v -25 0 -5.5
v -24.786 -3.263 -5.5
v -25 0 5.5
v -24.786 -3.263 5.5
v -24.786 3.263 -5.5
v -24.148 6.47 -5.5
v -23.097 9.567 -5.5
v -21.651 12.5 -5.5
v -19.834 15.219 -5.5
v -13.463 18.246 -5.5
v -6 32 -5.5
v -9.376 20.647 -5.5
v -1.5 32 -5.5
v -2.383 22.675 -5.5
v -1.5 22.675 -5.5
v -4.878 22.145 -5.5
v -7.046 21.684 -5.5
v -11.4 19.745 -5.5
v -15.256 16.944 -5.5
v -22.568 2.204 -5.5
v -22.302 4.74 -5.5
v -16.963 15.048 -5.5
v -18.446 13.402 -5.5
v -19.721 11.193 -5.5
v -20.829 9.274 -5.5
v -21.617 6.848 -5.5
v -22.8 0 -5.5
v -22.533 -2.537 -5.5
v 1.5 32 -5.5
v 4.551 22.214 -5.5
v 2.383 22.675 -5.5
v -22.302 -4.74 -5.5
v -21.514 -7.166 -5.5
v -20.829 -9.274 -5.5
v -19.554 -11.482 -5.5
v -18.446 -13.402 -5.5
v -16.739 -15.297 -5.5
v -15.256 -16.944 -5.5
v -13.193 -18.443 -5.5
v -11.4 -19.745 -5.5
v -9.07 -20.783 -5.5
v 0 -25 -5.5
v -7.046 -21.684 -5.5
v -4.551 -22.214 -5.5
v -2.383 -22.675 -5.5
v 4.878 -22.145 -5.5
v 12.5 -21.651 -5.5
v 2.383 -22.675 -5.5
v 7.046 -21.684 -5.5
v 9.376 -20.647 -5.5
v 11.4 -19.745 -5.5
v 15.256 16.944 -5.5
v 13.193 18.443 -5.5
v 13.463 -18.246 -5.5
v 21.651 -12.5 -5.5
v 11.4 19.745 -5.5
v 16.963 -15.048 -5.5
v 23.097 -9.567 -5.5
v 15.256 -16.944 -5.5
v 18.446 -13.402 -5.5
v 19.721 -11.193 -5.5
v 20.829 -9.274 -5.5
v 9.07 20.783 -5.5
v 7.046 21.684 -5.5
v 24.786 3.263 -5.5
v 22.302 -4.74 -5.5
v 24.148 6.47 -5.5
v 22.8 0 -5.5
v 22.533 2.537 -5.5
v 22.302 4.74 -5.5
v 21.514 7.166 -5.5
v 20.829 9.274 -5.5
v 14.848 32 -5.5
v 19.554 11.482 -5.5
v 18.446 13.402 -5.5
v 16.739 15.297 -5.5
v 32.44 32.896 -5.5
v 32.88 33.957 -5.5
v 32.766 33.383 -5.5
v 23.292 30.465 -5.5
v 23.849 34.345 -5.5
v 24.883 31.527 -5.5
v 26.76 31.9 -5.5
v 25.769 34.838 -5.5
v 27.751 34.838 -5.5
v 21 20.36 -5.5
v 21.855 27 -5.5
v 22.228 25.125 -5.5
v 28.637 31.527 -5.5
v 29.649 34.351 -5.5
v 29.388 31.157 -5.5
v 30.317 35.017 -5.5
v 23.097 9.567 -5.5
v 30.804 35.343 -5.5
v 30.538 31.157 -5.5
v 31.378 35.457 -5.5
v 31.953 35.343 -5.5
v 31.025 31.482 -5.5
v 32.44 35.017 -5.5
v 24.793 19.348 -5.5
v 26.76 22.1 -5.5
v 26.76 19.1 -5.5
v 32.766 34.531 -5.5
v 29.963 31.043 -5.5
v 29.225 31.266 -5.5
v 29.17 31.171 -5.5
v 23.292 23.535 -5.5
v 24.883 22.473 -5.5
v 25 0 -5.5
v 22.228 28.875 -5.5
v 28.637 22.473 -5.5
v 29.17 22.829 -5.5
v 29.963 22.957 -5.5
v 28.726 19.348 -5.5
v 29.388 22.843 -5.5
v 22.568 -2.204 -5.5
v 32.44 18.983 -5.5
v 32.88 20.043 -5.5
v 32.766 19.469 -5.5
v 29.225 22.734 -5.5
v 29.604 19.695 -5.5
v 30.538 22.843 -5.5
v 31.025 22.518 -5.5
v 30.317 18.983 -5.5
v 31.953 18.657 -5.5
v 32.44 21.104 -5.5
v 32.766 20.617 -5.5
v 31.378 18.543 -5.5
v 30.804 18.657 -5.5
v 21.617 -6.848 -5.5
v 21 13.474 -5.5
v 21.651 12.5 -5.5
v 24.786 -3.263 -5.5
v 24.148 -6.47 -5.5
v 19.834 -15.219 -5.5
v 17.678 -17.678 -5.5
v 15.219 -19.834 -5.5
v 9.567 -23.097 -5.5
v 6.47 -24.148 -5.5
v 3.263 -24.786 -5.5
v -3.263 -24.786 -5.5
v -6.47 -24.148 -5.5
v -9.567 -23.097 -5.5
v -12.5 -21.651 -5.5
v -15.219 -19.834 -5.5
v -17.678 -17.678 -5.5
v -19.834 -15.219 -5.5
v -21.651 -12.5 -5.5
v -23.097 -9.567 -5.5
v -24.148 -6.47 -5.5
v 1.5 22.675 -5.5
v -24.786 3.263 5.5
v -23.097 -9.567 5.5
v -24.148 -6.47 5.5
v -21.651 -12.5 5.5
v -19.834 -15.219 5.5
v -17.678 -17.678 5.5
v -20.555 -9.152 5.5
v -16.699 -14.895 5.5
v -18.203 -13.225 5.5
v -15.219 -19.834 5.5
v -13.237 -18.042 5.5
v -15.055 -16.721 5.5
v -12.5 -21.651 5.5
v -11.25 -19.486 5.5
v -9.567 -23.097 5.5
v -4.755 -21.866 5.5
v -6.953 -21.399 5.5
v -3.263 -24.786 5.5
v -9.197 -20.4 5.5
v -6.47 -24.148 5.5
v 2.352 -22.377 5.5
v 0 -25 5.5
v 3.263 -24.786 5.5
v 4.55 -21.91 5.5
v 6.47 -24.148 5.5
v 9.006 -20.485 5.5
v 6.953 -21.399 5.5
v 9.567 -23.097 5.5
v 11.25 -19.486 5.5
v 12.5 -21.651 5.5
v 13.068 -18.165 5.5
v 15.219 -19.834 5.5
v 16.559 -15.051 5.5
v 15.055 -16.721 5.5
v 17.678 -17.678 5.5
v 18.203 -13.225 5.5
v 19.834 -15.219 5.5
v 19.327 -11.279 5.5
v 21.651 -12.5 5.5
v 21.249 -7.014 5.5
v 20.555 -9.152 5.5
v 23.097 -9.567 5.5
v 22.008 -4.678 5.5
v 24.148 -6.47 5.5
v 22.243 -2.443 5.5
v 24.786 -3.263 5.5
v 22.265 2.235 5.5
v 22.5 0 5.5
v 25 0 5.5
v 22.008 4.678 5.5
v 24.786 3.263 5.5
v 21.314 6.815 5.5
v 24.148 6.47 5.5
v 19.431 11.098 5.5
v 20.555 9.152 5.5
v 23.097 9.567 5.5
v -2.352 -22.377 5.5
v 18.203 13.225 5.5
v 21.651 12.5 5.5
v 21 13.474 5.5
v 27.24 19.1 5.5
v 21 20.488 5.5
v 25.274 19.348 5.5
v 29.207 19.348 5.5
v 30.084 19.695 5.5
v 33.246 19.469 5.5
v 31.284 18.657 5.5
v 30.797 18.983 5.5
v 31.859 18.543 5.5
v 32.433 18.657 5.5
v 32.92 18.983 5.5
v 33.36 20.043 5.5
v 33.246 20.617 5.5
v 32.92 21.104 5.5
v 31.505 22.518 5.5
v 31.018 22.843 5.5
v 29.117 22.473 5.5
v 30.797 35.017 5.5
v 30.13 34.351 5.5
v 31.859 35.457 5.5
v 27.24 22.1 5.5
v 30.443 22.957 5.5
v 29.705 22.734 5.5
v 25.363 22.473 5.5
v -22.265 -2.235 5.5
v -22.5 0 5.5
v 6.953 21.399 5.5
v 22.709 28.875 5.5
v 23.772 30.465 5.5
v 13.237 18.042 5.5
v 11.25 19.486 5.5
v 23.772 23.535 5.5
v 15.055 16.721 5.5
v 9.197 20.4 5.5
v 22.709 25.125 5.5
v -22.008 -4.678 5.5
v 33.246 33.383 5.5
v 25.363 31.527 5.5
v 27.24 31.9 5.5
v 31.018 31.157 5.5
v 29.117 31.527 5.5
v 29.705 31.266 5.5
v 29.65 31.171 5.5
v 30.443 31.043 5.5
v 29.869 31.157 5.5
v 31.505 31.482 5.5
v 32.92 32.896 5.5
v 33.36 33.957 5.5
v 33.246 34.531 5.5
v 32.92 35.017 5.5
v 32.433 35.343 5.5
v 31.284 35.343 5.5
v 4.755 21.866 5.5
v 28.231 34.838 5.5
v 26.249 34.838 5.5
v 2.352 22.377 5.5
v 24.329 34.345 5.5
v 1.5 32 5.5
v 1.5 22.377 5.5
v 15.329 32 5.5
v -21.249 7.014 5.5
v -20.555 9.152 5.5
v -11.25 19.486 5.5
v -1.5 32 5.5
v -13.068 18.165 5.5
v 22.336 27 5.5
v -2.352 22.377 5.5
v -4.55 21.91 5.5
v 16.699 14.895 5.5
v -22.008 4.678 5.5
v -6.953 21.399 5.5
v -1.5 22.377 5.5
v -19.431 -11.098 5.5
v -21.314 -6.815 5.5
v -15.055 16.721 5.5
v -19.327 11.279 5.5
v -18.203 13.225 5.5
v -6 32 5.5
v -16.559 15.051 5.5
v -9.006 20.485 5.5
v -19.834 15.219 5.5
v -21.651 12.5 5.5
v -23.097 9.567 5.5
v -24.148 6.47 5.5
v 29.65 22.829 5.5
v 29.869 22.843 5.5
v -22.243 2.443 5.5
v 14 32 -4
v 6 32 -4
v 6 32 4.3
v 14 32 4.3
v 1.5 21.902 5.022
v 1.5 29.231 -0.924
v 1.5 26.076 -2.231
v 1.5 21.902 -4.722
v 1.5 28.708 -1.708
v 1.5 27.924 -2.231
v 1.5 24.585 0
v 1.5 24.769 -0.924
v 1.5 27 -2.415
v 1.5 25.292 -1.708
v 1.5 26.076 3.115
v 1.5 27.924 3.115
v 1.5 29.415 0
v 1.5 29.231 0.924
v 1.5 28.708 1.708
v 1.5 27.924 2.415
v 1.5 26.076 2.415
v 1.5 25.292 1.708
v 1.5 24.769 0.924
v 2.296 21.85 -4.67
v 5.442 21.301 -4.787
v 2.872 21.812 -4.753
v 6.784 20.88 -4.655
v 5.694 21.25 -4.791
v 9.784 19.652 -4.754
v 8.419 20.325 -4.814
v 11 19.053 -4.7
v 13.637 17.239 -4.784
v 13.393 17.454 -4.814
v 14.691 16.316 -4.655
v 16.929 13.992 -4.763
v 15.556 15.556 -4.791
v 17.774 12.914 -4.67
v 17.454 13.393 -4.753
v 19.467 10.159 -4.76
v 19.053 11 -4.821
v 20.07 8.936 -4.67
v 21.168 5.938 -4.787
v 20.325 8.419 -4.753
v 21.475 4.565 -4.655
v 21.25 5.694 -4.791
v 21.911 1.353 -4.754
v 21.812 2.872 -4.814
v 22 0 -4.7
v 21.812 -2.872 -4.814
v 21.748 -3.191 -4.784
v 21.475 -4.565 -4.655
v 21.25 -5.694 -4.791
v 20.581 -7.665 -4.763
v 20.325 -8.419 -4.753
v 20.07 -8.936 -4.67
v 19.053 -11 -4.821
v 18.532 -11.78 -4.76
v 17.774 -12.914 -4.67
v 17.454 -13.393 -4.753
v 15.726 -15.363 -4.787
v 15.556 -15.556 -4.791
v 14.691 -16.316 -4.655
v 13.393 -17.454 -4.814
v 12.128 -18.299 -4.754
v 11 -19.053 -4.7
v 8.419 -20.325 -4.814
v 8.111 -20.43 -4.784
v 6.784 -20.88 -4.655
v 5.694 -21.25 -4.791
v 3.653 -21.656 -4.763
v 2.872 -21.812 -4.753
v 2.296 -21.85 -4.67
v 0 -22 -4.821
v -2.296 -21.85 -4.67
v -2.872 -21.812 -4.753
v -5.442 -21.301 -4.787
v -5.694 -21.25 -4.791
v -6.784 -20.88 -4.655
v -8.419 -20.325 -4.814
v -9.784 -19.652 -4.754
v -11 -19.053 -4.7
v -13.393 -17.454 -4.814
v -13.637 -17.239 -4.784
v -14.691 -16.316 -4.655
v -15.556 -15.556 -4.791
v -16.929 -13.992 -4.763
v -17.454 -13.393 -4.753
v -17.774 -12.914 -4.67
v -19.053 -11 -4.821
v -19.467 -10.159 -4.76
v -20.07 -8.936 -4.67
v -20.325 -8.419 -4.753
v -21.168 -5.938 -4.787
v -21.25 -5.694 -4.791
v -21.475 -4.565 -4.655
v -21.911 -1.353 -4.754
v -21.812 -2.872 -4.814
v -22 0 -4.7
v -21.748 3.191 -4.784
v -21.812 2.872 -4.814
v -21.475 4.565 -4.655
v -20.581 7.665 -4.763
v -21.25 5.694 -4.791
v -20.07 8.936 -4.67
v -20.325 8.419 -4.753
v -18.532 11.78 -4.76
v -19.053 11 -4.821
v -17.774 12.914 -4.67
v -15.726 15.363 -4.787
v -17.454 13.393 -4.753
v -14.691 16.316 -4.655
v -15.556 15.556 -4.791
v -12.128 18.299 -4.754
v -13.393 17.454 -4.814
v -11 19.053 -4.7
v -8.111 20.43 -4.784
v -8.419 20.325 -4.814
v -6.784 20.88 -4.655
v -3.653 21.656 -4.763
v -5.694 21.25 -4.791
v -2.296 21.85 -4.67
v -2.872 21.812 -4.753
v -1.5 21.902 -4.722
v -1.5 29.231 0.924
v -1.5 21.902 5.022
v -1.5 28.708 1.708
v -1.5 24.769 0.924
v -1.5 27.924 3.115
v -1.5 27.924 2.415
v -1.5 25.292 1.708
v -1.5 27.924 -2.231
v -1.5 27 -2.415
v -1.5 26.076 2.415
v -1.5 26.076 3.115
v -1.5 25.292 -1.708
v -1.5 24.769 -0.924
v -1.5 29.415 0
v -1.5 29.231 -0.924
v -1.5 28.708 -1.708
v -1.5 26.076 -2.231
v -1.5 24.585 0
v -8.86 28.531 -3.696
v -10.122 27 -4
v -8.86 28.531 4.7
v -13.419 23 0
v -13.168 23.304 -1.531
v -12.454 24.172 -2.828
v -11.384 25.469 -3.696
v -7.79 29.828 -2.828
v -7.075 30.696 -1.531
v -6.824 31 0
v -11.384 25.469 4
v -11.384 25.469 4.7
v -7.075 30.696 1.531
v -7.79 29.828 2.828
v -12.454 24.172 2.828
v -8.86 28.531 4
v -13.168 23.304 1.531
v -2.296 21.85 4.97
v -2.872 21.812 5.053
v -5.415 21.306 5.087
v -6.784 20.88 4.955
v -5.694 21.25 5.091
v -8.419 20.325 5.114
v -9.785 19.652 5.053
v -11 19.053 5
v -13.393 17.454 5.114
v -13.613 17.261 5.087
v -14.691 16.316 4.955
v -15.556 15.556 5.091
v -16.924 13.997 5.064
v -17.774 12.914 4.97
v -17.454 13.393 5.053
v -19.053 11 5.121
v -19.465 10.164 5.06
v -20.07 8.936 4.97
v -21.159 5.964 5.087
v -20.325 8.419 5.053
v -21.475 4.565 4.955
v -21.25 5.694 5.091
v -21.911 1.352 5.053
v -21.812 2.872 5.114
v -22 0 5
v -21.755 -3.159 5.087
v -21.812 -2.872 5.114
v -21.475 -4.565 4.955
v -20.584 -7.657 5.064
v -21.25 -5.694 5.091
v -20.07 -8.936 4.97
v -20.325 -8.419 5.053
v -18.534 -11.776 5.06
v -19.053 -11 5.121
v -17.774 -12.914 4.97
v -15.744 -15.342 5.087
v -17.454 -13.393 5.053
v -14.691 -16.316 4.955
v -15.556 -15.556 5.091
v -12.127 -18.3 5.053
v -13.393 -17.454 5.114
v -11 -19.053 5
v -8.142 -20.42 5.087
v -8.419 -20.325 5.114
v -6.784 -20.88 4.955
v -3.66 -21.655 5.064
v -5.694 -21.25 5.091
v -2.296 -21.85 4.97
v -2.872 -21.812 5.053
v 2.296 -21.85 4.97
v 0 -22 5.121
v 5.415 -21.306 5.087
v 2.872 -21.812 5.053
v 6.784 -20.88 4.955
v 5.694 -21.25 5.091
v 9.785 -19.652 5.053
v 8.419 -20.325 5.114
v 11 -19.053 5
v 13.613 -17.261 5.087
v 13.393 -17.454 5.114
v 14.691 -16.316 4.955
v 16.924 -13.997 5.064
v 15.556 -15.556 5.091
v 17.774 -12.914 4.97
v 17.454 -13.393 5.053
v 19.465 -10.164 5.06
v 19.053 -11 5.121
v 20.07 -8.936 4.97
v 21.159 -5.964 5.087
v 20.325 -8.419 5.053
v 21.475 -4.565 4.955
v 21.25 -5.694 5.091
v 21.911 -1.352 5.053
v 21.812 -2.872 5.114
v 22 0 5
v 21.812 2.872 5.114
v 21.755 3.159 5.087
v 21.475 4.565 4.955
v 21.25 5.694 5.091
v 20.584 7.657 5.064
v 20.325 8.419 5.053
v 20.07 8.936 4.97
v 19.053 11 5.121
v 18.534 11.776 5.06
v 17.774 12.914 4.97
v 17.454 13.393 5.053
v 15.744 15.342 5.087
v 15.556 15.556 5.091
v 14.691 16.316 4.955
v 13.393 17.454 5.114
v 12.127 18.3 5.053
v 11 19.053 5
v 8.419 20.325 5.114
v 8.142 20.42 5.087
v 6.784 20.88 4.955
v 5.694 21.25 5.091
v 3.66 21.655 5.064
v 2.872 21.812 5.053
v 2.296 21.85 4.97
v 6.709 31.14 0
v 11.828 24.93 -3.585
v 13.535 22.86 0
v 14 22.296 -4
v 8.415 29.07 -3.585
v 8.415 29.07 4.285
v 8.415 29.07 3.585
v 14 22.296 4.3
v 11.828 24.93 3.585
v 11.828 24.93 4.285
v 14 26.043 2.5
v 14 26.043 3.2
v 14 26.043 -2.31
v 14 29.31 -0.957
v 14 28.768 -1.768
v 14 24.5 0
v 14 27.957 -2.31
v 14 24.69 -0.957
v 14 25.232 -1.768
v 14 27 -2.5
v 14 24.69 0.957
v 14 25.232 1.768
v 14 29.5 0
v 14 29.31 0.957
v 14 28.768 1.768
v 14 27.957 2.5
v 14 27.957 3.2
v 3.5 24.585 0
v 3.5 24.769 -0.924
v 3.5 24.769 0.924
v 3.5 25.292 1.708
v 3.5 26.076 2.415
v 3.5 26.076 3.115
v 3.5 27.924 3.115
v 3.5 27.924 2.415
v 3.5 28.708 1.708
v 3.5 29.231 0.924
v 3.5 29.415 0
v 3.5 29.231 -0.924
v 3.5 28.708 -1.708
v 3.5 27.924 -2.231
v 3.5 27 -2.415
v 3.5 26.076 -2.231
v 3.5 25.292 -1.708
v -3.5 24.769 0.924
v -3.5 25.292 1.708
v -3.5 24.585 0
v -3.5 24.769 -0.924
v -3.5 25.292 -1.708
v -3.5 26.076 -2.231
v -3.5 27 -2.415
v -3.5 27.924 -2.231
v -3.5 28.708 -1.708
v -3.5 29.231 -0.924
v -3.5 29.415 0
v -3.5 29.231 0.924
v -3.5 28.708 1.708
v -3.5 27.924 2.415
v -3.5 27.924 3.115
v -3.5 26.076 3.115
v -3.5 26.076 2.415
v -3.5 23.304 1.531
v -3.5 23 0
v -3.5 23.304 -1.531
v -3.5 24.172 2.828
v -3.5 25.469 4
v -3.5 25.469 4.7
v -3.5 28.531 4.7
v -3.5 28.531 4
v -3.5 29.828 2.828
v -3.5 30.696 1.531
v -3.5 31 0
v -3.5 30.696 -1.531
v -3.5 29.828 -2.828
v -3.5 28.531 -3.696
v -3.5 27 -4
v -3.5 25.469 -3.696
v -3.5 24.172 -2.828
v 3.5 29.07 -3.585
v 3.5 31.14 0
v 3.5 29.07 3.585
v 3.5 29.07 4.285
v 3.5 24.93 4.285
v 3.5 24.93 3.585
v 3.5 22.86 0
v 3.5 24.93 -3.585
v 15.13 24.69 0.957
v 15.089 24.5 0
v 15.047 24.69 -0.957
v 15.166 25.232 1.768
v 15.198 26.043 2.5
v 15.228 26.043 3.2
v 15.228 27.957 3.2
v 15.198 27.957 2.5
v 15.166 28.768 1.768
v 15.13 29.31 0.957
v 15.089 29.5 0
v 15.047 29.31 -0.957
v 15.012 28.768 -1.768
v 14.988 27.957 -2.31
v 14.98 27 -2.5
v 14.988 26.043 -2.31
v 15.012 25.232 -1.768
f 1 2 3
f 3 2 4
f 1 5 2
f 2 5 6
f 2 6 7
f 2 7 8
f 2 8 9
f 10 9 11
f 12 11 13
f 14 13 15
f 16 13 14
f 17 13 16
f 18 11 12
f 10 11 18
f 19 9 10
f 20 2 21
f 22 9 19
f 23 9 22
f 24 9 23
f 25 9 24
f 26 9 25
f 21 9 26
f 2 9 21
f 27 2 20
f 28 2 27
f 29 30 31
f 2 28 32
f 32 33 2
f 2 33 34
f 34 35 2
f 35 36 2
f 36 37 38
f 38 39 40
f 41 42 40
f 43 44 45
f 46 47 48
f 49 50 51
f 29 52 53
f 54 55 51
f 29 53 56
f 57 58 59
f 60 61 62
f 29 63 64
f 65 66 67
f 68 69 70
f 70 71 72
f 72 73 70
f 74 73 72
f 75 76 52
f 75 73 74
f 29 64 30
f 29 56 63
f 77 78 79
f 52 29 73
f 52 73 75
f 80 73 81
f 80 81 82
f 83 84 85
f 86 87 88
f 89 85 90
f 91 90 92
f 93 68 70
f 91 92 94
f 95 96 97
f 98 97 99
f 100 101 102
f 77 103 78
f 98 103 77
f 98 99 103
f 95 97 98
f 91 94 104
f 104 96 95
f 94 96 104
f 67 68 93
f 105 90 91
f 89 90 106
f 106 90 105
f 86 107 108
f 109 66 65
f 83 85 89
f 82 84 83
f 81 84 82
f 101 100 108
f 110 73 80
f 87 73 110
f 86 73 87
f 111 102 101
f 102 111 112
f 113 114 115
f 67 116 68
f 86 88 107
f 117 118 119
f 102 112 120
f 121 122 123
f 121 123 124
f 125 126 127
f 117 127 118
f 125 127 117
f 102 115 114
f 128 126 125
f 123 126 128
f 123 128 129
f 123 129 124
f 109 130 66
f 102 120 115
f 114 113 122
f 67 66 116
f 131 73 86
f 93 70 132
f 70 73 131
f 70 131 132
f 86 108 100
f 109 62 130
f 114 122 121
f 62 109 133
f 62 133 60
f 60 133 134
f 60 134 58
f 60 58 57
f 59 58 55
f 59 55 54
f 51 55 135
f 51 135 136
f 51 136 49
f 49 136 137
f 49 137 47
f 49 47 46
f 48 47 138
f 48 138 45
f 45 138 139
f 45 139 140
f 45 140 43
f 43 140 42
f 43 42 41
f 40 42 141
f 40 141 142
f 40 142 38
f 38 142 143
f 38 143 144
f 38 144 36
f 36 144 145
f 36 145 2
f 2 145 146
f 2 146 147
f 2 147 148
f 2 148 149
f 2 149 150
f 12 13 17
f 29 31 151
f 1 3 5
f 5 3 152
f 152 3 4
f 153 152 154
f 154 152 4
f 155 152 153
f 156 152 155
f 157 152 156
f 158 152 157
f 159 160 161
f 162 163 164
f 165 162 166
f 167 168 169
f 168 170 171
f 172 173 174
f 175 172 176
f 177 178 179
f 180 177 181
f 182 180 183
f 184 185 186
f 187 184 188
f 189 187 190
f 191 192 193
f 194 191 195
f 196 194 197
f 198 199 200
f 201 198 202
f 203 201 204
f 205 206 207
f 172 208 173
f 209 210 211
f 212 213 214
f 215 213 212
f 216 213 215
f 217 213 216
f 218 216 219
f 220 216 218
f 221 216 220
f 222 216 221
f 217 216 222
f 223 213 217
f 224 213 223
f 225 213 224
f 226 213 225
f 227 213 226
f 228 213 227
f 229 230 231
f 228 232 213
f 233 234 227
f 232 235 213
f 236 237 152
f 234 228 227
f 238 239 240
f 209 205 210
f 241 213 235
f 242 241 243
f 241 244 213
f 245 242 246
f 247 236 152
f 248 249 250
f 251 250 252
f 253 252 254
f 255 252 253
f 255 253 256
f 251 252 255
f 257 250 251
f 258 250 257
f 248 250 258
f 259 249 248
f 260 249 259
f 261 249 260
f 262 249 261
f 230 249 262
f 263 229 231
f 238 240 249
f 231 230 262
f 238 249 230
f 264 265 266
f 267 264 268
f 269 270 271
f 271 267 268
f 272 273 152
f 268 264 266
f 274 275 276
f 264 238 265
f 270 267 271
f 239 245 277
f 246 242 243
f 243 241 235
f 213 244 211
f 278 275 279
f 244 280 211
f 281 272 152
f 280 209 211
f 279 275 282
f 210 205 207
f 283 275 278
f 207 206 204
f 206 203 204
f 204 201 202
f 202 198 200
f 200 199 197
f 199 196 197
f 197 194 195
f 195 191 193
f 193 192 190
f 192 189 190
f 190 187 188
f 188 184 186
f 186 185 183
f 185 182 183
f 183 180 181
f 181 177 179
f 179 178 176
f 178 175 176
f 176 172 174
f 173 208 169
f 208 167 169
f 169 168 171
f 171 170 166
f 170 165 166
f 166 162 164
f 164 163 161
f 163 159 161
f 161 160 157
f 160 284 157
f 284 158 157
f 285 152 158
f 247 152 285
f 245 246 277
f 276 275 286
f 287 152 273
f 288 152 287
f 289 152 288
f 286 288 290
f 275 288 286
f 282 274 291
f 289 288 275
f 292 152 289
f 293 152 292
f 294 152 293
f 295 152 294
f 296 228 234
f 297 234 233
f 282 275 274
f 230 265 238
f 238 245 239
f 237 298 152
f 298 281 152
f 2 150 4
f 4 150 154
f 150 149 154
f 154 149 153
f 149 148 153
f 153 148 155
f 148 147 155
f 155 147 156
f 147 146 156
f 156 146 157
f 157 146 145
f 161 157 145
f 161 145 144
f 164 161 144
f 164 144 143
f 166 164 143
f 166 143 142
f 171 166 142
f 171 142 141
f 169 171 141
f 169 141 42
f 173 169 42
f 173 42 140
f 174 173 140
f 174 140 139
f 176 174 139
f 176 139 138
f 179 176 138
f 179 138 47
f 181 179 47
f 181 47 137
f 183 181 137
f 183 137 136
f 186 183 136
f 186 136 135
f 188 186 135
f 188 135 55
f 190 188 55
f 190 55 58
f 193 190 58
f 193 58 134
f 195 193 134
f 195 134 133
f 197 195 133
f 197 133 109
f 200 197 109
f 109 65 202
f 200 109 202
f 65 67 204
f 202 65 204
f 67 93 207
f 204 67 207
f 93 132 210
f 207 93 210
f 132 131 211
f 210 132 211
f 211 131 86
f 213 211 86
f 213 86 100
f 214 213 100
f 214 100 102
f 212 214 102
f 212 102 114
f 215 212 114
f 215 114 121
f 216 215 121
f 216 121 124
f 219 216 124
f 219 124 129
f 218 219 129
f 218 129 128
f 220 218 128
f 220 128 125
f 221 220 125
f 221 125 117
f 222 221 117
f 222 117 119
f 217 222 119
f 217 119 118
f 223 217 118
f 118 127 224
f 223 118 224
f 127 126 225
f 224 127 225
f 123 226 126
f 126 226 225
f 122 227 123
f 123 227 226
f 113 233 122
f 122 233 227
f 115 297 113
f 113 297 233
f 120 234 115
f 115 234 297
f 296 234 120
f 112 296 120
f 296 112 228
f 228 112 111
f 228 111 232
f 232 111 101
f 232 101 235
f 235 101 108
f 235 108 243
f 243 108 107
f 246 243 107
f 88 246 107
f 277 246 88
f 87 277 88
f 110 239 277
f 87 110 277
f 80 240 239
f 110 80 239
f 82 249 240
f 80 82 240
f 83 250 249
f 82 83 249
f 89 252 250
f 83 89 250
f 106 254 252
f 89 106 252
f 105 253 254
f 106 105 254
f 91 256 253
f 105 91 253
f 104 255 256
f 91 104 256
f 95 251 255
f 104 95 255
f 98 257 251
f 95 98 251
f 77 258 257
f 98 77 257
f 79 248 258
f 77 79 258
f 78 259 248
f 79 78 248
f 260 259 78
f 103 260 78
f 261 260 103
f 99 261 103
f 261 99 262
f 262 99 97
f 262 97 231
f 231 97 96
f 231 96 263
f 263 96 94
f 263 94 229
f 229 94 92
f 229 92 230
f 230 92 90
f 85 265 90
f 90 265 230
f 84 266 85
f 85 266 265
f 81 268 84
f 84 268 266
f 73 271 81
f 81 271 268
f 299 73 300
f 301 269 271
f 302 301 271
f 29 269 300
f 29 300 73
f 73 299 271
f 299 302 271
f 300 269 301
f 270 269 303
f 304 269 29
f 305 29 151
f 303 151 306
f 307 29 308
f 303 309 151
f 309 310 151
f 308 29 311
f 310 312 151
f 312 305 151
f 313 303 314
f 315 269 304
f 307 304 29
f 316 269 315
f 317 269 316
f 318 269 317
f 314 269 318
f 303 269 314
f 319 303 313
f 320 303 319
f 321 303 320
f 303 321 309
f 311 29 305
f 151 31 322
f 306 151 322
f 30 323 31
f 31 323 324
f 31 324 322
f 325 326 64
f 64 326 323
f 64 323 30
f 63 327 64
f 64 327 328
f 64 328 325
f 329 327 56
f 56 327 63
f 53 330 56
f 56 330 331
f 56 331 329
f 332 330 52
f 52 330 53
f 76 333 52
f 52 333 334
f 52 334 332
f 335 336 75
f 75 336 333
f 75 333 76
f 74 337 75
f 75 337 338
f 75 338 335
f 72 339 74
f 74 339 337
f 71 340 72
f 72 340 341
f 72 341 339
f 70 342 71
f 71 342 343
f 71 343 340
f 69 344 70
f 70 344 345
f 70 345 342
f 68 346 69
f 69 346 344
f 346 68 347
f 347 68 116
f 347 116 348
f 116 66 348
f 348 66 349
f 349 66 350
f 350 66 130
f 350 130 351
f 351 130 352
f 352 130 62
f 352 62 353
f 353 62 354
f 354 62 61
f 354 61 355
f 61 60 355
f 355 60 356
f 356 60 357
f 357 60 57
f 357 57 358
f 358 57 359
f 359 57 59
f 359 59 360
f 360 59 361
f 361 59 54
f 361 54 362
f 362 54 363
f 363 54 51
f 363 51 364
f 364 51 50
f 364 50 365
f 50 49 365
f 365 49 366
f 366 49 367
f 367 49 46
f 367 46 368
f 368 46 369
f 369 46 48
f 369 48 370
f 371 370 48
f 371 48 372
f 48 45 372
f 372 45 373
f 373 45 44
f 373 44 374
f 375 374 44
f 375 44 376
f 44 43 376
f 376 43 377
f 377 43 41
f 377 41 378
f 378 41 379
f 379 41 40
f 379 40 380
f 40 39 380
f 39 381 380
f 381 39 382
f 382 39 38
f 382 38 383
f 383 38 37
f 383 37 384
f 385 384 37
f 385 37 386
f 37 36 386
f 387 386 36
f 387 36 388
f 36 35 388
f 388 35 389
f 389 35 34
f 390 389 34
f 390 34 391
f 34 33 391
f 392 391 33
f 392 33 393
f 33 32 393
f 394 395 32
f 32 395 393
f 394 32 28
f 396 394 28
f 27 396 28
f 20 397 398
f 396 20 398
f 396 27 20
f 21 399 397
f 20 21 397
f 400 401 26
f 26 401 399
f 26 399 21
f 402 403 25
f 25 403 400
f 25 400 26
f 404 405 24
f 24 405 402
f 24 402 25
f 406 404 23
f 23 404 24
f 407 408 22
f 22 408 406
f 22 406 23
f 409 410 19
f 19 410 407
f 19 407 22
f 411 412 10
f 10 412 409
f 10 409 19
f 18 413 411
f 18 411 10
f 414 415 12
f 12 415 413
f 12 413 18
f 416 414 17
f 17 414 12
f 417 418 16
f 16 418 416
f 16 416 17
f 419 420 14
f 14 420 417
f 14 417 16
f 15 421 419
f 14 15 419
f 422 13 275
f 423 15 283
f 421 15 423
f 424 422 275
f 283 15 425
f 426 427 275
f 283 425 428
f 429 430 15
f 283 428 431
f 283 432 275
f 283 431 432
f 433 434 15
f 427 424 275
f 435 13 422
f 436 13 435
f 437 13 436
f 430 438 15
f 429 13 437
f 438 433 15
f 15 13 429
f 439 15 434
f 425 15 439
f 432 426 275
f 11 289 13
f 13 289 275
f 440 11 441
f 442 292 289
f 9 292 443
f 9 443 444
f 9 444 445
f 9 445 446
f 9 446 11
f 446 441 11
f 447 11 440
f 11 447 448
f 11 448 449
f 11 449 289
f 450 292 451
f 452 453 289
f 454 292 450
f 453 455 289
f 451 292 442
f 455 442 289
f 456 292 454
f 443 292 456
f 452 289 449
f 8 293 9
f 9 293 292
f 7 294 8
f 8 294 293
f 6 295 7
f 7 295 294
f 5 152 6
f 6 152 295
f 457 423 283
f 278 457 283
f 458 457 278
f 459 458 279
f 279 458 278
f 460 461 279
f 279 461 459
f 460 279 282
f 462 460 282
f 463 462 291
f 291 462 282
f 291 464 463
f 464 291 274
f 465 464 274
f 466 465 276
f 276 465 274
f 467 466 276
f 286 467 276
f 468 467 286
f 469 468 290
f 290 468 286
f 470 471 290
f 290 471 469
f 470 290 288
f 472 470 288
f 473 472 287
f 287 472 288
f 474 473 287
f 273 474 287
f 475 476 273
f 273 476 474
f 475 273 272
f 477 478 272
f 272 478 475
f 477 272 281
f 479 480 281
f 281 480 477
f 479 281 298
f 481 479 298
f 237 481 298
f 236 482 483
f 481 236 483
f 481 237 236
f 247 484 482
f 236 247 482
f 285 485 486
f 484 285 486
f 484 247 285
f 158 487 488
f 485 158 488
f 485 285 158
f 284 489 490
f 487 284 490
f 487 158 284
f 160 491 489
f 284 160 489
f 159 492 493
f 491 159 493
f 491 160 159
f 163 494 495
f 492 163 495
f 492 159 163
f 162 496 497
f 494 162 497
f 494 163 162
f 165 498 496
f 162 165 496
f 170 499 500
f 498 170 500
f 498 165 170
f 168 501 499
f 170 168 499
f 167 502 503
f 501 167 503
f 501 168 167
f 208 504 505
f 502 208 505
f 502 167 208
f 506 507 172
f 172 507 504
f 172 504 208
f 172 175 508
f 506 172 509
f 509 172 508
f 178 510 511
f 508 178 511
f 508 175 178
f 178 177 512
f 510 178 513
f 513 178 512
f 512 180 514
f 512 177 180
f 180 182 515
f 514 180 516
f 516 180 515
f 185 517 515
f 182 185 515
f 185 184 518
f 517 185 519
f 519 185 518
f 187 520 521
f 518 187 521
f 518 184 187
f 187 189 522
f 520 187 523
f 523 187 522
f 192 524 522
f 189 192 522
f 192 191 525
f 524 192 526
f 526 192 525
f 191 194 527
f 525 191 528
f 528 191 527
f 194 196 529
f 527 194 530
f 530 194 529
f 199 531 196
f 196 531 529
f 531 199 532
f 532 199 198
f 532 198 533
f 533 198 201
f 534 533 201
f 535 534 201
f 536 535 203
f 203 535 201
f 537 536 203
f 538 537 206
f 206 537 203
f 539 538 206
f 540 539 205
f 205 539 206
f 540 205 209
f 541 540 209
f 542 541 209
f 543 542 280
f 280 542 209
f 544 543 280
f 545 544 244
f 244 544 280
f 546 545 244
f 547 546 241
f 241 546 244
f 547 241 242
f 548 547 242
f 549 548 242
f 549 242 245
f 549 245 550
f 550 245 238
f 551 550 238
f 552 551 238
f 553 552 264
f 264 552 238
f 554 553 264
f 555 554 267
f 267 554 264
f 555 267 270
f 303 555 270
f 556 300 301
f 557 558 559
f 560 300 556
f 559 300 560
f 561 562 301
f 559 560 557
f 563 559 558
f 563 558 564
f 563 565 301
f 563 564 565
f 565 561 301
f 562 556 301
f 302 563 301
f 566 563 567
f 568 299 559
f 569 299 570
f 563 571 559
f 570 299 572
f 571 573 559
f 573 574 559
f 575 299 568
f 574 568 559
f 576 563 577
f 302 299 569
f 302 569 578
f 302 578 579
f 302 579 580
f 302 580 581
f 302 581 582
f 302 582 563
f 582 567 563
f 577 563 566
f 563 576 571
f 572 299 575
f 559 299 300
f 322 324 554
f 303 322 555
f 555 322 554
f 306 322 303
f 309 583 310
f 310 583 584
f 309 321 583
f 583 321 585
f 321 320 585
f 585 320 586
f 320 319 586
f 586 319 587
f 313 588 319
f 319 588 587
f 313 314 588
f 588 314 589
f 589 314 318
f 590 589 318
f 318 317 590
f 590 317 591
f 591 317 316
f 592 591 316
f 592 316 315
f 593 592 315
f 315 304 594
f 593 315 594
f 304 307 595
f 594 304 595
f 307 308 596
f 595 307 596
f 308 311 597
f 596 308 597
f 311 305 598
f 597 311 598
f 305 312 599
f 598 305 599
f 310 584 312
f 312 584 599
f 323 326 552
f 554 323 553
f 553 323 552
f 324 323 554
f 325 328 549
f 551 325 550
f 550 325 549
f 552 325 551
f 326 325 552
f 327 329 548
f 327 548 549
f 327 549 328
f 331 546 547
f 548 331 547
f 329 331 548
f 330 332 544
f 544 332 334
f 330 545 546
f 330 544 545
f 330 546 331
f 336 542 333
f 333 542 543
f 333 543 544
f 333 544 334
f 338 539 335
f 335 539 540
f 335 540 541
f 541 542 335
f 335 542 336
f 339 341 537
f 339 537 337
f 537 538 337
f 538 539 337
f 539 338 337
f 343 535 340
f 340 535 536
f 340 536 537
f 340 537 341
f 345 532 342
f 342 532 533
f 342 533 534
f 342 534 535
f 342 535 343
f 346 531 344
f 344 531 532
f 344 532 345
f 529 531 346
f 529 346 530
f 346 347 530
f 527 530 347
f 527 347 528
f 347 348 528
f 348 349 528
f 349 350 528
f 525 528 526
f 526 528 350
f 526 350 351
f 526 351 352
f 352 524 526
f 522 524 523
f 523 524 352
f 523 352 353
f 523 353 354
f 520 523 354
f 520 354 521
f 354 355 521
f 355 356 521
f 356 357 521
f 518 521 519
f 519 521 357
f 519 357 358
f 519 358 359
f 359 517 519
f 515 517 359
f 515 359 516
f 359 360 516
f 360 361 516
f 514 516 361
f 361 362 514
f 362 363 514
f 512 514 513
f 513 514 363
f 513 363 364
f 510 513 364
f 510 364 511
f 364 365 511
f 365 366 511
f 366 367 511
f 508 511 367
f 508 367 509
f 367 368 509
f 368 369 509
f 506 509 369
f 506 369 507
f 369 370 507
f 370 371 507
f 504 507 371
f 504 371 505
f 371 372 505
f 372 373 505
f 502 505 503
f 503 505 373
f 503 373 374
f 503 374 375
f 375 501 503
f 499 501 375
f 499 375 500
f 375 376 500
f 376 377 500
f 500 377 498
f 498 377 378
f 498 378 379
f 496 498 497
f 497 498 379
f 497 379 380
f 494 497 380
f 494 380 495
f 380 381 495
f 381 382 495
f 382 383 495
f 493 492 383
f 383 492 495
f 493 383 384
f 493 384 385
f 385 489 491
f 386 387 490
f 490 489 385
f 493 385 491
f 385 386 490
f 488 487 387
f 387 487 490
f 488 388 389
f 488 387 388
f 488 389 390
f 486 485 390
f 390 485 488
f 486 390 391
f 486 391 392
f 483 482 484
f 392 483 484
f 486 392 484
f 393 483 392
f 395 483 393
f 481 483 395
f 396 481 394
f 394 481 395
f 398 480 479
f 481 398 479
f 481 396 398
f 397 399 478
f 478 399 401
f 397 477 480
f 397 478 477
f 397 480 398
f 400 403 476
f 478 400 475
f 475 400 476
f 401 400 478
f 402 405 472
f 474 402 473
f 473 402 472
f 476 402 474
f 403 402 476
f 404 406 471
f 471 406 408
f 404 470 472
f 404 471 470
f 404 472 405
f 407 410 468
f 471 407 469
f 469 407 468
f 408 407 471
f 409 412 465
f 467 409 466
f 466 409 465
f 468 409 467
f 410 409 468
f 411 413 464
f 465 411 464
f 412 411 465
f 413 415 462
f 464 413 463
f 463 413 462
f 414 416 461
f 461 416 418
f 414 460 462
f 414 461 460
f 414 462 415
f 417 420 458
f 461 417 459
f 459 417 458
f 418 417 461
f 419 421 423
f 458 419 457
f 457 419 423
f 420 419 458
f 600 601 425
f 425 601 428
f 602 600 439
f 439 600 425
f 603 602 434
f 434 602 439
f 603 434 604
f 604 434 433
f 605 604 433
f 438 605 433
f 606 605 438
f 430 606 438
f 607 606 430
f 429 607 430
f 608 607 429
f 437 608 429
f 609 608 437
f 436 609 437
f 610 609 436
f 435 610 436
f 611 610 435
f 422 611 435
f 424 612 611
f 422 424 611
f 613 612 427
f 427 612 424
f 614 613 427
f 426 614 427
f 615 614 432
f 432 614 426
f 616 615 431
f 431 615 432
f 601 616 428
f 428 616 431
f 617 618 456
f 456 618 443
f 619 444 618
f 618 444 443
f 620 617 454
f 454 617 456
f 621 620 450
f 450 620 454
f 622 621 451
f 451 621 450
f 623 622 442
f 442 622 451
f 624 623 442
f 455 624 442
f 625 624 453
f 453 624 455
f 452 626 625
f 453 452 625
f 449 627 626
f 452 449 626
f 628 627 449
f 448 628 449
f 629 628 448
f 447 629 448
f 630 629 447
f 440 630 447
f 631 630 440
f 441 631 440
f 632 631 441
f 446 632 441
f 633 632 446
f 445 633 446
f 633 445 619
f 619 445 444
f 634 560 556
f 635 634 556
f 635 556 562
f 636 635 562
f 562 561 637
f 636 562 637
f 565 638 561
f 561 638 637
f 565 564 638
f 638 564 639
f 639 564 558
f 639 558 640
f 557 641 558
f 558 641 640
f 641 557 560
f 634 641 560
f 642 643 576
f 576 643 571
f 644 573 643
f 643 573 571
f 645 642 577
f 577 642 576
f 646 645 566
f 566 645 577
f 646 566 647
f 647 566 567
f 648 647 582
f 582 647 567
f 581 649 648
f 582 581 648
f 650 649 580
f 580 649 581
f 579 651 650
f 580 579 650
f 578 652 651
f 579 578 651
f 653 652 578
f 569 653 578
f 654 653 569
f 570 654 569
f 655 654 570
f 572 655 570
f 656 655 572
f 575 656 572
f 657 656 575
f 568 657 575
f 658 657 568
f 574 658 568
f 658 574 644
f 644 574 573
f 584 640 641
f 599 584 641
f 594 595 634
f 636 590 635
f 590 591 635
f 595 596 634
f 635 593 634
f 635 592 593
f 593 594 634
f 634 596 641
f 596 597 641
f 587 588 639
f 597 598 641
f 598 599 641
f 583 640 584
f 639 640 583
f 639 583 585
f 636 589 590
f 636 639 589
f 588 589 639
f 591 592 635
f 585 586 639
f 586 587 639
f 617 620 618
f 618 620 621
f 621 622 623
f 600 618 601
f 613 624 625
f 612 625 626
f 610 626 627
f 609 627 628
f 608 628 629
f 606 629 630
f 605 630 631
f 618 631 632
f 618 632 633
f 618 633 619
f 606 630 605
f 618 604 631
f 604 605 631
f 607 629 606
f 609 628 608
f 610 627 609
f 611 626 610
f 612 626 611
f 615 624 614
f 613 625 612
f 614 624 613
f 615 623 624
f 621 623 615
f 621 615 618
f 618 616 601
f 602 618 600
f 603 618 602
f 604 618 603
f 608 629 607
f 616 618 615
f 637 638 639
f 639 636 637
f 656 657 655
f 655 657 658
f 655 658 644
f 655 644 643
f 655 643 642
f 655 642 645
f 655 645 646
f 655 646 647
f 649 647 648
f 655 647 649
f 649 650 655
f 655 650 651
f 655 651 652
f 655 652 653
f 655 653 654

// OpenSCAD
// file: cylinder_clip.scad
use <../utilities.scad>;

module cylinder_clip(r=1,t=3,opening_angle=120,wing_length=2,wing_angle=45,flat_w=10,flat_t=3,h=10,$fn=$fn){
	union(){
		difference(){
			hull(){
				cylinder(r=r+t,$fn=$fn,h=h);
				translate([-flat_w/2,-r-flat_t,0]) cube([flat_w,0.1,h]);
			}
			cylinder(r=r,$fn=$fn,h=99999,center=true);
			cylinder(r1=r+2,r2=r,$fn=$fn,h=2,center=true);
			scale([tan(opening_angle/2),1,1]) rotate([0,0,45]) translate([0,0,-1]) cube([1,1,1]*9999);
		}
		reflect([1,0,0]) translate([sin(opening_angle/2),cos(opening_angle/2),0]*(r+t/2)) hull() repeat([sin(wing_angle),cos(wing_angle),0]*wing_length,2)
			cylinder(r=t/2,h=h,$fn=16);
			
	}
}

//cylinder_clip(r=3,t=2,flat_w=6);
union(){
	cylinder_clip(r=21,t=4.5,flat_t=10,opening_angle=100,$fn=64);
	translate([-5,-22-5-20,0]) cube([10,20,10]);
}
// file: ../standard_optomechanics/cylinder_clamp.scad
use <../utilities.scad>;
d=0.05;

//for 1 inch/25mm post clamp, an inner radius of 12.8 is good.
	
module cylinder_clamp(
	inner_r=12.8, //radius of the cylinder being clamped (ish!)
	clamp_h=11, //thicknedess of the clamp along the cylinder axis
	clamp_t=4, //thickness of the clamp radially
	flat_t=8, //how thick the bottom of the clamp is (often need to allow for the mounting bolt head here)
	flat_width=15, //width of the flat base
	mounting_bolt=4, //nominal size of mounting bolt (default is 4 for M4, 0 to disable)
	nut_trap=false,
	bevel_top=0.5, //size of 45 degree bevel on top surface
	bevel_bottom=0.8 //size of 45 degree bevel on bottom of hole
	){
	assign(
		post_r = inner_r, //poor initial choice of name!
		bolt_flat_w=10, //width of the region where the bolt is
		gap_w=3 //size of the gap that is squeezed by the bolt
	)
	difference(){
		hull(){
			cylinder(h=clamp_h,r=post_r+clamp_t,center=true,$fn=48);
			translate([0,-post_r-flat_t/2,0]) cube([flat_width,flat_t,clamp_h],center=true);
			translate([0,post_r+bolt_flat_w/2,0]) cube([12,bolt_flat_w,clamp_h],center=true);
		}
	
		cylinder(h=9999,r=post_r,center=true,$fn=48); //cylinder being clamped
		//bevels, top and bottom
		translate([0,0,-clamp_h/2]) cylinder(r1=post_r+3*bevel_bottom,r2=post_r-bevel_bottom,h=4*bevel_bottom,center=true);
		translate([0,0,clamp_h/2]) cylinder(r2=post_r+3*bevel_top,r1=post_r-bevel_top,h=4*bevel_top,center=true);
		//gap (squeezed by bolt)
		translate([0,999,0]) cube([gap_w,999*2,999],center=true); //gap
	
		//clamping bolt
		translate([gap_w/2+2,post_r+bolt_flat_w/2,0]) rotate([0,0,-90]) nut_y(4,h=999,shaft=true);
		translate([-gap_w/2-2,post_r+bolt_flat_w/2,0]) rotate([0,0,90]) cylinder_with_45deg_top(r=4,h=999,$fn=16); //counterbore for nut head
	
		if(mounting_bolt > 0){
			//mounting bolt
			translate([0,-post_r-4.5,0]) rotate([-90,0,0]){
				intersection(){
					rotate([90,0,0])
						if(nut_trap){
							nut_y(mounting_bolt,fudge=1.15,shaft=true,h=999);
						}else{
							screw_y(mounting_bolt,fudge=1.07,shaft=true,h=999);
						}
					cube([inner_r*2,inner_r*2,clamp_h*2],center=true);
				}
			}
		}
		//in the case of thick clamps with thin flats, this keeps the bottom flat
		translate([0,-inner_r-flat_t-999,0]) cube([9999,999*2,9999],center=true);
	}
}

module cylinder_clamp_v(
	inner_r=12.8, //radius of the cylinder being clamped (ish!)
	clamp_h=10, //width of the clamp along the cylinder (y) axis
	clamp_t=4, //thickness of the clamp radially
	flat_t=8, //how thick the bottom of the clamp is (often need to allow for the mounting bolt head here)
	flat_width=15, //width of the flat base
	mounting_bolt=4, //nominal size of mounting bolt (default is 4 for M4, 0 to disable)
	bevel=0.5 //put a 45 degree bevel on the edges of the hole
	){
	assign(
		post_r = inner_r, //poor initial choice of name!
		bolt_flat_w=11, //width of the region where the bolt is
		gap_w=2*inner_r*sin(45/2),//sin(acos(1-(9/2-4/2*1.22)/inner_r))*inner_r //size of the gap that is squeezed by the bolt
		bolt_z = inner_r+4/2*1.22+d //position of bolt (so bolt just clears the cylinder we're clamping
	)assign( //the second assign statement allows us to use gap_w
		bolt_span=gap_w+4+d//max(2*inner_r*sin(acos(1-(9/2-4/2*1.22)/inner_r)), gap_w+4)
	)
	difference(){
		hull(){
			rotate([90,0,0]) cylinder(h=clamp_h,r=inner_r+clamp_t,center=true,$fn=48);
			translate([0,0,-inner_r-flat_t/2]) cube([flat_width,clamp_h,flat_t],center=true);
			translate([0,0,bolt_z]) cube([gap_w+9,clamp_h,bolt_flat_w],center=true);
		}
	
		cylinder_with_45deg_top(h=9999,r=post_r,center=true,$fn=48); //cylinder being clamped
		reflect([0,1,0]) translate([0,clamp_h/2,0]) rotate([90,0,0]) cylinder(r1=post_r+3*bevel,r2=post_r-bevel,h=4*bevel,center=true); //bevel
		translate([0,0,999]) cube([gap_w,999,999*2],center=true); //gap
	
		//clamping bolt
		translate([bolt_span/2,0,bolt_z]) rotate([0,0,-90]) nut_y(4,h=999,shaft=true);
		translate([-bolt_span/2,0,bolt_z]) rotate([0,0,90]) cylinder_with_45deg_top(r=4,h=999,$fn=16); //counterbore for nut head
	
		if(mounting_bolt > 0){
			//mounting bolt
			translate([0,0,-post_r-4.5]){
				cylinder(r=mounting_bolt*1.1,h=post_r,$fn=16);
				cylinder(r=mounting_bolt/2*1.22,h=flat_t*2,center=true,$fn=16);
			}
		}
		translate([0,0,-inner_r-flat_t-999]) cube([9999,9999,999*2],center=true);
	}
}

translate([0,30,0]) cylinder_clamp_v(30.5/2, 10, flat_width=24, mounting_bolt=4, flat_t=8);

cylinder_clamp(30.5/2, flat_width=24, mounting_bolt=4, flat_t=8,nut_trap=true);
// main file
use <../standard_optomechanics/cylinder_clamp.scad>;
use <./cylinder_clip.scad>;
use <../utilities.scad>;

t = 3;
h = 11;
inner_r = 22;


union(){
	cylinder_clamp(inner_r=inner_r,clamp_h=h,flat_width=0,flat_t=t,mounting_bolt=0,clamp_t=t);
	
	intersection(){
		translate([inner_r+5,inner_r+5,0]) rotate([-2.5,0,-90])translate([0,0,-999])cylinder_clip(r=5-0.1,t=3,flat_t=7,h=999*2);
		cube([999,999,h],center=true);
	}
	difference(){
		translate([4,0,-h/2]) cube([inner_r-4-1,inner_r+10,h]); //support for clip
		cylinder(r=inner_r+t/2,h=999,center=true); //clearance for tube 
		translate([0,0,-8/2]) cube([14,999,8+0.3]); //nut entry
		translate([0,inner_r+5,0]) rotate(-90) cylinder_with_45deg_top(r=2.5,h=20,$fn=16); //bolt clearance
	}
}
